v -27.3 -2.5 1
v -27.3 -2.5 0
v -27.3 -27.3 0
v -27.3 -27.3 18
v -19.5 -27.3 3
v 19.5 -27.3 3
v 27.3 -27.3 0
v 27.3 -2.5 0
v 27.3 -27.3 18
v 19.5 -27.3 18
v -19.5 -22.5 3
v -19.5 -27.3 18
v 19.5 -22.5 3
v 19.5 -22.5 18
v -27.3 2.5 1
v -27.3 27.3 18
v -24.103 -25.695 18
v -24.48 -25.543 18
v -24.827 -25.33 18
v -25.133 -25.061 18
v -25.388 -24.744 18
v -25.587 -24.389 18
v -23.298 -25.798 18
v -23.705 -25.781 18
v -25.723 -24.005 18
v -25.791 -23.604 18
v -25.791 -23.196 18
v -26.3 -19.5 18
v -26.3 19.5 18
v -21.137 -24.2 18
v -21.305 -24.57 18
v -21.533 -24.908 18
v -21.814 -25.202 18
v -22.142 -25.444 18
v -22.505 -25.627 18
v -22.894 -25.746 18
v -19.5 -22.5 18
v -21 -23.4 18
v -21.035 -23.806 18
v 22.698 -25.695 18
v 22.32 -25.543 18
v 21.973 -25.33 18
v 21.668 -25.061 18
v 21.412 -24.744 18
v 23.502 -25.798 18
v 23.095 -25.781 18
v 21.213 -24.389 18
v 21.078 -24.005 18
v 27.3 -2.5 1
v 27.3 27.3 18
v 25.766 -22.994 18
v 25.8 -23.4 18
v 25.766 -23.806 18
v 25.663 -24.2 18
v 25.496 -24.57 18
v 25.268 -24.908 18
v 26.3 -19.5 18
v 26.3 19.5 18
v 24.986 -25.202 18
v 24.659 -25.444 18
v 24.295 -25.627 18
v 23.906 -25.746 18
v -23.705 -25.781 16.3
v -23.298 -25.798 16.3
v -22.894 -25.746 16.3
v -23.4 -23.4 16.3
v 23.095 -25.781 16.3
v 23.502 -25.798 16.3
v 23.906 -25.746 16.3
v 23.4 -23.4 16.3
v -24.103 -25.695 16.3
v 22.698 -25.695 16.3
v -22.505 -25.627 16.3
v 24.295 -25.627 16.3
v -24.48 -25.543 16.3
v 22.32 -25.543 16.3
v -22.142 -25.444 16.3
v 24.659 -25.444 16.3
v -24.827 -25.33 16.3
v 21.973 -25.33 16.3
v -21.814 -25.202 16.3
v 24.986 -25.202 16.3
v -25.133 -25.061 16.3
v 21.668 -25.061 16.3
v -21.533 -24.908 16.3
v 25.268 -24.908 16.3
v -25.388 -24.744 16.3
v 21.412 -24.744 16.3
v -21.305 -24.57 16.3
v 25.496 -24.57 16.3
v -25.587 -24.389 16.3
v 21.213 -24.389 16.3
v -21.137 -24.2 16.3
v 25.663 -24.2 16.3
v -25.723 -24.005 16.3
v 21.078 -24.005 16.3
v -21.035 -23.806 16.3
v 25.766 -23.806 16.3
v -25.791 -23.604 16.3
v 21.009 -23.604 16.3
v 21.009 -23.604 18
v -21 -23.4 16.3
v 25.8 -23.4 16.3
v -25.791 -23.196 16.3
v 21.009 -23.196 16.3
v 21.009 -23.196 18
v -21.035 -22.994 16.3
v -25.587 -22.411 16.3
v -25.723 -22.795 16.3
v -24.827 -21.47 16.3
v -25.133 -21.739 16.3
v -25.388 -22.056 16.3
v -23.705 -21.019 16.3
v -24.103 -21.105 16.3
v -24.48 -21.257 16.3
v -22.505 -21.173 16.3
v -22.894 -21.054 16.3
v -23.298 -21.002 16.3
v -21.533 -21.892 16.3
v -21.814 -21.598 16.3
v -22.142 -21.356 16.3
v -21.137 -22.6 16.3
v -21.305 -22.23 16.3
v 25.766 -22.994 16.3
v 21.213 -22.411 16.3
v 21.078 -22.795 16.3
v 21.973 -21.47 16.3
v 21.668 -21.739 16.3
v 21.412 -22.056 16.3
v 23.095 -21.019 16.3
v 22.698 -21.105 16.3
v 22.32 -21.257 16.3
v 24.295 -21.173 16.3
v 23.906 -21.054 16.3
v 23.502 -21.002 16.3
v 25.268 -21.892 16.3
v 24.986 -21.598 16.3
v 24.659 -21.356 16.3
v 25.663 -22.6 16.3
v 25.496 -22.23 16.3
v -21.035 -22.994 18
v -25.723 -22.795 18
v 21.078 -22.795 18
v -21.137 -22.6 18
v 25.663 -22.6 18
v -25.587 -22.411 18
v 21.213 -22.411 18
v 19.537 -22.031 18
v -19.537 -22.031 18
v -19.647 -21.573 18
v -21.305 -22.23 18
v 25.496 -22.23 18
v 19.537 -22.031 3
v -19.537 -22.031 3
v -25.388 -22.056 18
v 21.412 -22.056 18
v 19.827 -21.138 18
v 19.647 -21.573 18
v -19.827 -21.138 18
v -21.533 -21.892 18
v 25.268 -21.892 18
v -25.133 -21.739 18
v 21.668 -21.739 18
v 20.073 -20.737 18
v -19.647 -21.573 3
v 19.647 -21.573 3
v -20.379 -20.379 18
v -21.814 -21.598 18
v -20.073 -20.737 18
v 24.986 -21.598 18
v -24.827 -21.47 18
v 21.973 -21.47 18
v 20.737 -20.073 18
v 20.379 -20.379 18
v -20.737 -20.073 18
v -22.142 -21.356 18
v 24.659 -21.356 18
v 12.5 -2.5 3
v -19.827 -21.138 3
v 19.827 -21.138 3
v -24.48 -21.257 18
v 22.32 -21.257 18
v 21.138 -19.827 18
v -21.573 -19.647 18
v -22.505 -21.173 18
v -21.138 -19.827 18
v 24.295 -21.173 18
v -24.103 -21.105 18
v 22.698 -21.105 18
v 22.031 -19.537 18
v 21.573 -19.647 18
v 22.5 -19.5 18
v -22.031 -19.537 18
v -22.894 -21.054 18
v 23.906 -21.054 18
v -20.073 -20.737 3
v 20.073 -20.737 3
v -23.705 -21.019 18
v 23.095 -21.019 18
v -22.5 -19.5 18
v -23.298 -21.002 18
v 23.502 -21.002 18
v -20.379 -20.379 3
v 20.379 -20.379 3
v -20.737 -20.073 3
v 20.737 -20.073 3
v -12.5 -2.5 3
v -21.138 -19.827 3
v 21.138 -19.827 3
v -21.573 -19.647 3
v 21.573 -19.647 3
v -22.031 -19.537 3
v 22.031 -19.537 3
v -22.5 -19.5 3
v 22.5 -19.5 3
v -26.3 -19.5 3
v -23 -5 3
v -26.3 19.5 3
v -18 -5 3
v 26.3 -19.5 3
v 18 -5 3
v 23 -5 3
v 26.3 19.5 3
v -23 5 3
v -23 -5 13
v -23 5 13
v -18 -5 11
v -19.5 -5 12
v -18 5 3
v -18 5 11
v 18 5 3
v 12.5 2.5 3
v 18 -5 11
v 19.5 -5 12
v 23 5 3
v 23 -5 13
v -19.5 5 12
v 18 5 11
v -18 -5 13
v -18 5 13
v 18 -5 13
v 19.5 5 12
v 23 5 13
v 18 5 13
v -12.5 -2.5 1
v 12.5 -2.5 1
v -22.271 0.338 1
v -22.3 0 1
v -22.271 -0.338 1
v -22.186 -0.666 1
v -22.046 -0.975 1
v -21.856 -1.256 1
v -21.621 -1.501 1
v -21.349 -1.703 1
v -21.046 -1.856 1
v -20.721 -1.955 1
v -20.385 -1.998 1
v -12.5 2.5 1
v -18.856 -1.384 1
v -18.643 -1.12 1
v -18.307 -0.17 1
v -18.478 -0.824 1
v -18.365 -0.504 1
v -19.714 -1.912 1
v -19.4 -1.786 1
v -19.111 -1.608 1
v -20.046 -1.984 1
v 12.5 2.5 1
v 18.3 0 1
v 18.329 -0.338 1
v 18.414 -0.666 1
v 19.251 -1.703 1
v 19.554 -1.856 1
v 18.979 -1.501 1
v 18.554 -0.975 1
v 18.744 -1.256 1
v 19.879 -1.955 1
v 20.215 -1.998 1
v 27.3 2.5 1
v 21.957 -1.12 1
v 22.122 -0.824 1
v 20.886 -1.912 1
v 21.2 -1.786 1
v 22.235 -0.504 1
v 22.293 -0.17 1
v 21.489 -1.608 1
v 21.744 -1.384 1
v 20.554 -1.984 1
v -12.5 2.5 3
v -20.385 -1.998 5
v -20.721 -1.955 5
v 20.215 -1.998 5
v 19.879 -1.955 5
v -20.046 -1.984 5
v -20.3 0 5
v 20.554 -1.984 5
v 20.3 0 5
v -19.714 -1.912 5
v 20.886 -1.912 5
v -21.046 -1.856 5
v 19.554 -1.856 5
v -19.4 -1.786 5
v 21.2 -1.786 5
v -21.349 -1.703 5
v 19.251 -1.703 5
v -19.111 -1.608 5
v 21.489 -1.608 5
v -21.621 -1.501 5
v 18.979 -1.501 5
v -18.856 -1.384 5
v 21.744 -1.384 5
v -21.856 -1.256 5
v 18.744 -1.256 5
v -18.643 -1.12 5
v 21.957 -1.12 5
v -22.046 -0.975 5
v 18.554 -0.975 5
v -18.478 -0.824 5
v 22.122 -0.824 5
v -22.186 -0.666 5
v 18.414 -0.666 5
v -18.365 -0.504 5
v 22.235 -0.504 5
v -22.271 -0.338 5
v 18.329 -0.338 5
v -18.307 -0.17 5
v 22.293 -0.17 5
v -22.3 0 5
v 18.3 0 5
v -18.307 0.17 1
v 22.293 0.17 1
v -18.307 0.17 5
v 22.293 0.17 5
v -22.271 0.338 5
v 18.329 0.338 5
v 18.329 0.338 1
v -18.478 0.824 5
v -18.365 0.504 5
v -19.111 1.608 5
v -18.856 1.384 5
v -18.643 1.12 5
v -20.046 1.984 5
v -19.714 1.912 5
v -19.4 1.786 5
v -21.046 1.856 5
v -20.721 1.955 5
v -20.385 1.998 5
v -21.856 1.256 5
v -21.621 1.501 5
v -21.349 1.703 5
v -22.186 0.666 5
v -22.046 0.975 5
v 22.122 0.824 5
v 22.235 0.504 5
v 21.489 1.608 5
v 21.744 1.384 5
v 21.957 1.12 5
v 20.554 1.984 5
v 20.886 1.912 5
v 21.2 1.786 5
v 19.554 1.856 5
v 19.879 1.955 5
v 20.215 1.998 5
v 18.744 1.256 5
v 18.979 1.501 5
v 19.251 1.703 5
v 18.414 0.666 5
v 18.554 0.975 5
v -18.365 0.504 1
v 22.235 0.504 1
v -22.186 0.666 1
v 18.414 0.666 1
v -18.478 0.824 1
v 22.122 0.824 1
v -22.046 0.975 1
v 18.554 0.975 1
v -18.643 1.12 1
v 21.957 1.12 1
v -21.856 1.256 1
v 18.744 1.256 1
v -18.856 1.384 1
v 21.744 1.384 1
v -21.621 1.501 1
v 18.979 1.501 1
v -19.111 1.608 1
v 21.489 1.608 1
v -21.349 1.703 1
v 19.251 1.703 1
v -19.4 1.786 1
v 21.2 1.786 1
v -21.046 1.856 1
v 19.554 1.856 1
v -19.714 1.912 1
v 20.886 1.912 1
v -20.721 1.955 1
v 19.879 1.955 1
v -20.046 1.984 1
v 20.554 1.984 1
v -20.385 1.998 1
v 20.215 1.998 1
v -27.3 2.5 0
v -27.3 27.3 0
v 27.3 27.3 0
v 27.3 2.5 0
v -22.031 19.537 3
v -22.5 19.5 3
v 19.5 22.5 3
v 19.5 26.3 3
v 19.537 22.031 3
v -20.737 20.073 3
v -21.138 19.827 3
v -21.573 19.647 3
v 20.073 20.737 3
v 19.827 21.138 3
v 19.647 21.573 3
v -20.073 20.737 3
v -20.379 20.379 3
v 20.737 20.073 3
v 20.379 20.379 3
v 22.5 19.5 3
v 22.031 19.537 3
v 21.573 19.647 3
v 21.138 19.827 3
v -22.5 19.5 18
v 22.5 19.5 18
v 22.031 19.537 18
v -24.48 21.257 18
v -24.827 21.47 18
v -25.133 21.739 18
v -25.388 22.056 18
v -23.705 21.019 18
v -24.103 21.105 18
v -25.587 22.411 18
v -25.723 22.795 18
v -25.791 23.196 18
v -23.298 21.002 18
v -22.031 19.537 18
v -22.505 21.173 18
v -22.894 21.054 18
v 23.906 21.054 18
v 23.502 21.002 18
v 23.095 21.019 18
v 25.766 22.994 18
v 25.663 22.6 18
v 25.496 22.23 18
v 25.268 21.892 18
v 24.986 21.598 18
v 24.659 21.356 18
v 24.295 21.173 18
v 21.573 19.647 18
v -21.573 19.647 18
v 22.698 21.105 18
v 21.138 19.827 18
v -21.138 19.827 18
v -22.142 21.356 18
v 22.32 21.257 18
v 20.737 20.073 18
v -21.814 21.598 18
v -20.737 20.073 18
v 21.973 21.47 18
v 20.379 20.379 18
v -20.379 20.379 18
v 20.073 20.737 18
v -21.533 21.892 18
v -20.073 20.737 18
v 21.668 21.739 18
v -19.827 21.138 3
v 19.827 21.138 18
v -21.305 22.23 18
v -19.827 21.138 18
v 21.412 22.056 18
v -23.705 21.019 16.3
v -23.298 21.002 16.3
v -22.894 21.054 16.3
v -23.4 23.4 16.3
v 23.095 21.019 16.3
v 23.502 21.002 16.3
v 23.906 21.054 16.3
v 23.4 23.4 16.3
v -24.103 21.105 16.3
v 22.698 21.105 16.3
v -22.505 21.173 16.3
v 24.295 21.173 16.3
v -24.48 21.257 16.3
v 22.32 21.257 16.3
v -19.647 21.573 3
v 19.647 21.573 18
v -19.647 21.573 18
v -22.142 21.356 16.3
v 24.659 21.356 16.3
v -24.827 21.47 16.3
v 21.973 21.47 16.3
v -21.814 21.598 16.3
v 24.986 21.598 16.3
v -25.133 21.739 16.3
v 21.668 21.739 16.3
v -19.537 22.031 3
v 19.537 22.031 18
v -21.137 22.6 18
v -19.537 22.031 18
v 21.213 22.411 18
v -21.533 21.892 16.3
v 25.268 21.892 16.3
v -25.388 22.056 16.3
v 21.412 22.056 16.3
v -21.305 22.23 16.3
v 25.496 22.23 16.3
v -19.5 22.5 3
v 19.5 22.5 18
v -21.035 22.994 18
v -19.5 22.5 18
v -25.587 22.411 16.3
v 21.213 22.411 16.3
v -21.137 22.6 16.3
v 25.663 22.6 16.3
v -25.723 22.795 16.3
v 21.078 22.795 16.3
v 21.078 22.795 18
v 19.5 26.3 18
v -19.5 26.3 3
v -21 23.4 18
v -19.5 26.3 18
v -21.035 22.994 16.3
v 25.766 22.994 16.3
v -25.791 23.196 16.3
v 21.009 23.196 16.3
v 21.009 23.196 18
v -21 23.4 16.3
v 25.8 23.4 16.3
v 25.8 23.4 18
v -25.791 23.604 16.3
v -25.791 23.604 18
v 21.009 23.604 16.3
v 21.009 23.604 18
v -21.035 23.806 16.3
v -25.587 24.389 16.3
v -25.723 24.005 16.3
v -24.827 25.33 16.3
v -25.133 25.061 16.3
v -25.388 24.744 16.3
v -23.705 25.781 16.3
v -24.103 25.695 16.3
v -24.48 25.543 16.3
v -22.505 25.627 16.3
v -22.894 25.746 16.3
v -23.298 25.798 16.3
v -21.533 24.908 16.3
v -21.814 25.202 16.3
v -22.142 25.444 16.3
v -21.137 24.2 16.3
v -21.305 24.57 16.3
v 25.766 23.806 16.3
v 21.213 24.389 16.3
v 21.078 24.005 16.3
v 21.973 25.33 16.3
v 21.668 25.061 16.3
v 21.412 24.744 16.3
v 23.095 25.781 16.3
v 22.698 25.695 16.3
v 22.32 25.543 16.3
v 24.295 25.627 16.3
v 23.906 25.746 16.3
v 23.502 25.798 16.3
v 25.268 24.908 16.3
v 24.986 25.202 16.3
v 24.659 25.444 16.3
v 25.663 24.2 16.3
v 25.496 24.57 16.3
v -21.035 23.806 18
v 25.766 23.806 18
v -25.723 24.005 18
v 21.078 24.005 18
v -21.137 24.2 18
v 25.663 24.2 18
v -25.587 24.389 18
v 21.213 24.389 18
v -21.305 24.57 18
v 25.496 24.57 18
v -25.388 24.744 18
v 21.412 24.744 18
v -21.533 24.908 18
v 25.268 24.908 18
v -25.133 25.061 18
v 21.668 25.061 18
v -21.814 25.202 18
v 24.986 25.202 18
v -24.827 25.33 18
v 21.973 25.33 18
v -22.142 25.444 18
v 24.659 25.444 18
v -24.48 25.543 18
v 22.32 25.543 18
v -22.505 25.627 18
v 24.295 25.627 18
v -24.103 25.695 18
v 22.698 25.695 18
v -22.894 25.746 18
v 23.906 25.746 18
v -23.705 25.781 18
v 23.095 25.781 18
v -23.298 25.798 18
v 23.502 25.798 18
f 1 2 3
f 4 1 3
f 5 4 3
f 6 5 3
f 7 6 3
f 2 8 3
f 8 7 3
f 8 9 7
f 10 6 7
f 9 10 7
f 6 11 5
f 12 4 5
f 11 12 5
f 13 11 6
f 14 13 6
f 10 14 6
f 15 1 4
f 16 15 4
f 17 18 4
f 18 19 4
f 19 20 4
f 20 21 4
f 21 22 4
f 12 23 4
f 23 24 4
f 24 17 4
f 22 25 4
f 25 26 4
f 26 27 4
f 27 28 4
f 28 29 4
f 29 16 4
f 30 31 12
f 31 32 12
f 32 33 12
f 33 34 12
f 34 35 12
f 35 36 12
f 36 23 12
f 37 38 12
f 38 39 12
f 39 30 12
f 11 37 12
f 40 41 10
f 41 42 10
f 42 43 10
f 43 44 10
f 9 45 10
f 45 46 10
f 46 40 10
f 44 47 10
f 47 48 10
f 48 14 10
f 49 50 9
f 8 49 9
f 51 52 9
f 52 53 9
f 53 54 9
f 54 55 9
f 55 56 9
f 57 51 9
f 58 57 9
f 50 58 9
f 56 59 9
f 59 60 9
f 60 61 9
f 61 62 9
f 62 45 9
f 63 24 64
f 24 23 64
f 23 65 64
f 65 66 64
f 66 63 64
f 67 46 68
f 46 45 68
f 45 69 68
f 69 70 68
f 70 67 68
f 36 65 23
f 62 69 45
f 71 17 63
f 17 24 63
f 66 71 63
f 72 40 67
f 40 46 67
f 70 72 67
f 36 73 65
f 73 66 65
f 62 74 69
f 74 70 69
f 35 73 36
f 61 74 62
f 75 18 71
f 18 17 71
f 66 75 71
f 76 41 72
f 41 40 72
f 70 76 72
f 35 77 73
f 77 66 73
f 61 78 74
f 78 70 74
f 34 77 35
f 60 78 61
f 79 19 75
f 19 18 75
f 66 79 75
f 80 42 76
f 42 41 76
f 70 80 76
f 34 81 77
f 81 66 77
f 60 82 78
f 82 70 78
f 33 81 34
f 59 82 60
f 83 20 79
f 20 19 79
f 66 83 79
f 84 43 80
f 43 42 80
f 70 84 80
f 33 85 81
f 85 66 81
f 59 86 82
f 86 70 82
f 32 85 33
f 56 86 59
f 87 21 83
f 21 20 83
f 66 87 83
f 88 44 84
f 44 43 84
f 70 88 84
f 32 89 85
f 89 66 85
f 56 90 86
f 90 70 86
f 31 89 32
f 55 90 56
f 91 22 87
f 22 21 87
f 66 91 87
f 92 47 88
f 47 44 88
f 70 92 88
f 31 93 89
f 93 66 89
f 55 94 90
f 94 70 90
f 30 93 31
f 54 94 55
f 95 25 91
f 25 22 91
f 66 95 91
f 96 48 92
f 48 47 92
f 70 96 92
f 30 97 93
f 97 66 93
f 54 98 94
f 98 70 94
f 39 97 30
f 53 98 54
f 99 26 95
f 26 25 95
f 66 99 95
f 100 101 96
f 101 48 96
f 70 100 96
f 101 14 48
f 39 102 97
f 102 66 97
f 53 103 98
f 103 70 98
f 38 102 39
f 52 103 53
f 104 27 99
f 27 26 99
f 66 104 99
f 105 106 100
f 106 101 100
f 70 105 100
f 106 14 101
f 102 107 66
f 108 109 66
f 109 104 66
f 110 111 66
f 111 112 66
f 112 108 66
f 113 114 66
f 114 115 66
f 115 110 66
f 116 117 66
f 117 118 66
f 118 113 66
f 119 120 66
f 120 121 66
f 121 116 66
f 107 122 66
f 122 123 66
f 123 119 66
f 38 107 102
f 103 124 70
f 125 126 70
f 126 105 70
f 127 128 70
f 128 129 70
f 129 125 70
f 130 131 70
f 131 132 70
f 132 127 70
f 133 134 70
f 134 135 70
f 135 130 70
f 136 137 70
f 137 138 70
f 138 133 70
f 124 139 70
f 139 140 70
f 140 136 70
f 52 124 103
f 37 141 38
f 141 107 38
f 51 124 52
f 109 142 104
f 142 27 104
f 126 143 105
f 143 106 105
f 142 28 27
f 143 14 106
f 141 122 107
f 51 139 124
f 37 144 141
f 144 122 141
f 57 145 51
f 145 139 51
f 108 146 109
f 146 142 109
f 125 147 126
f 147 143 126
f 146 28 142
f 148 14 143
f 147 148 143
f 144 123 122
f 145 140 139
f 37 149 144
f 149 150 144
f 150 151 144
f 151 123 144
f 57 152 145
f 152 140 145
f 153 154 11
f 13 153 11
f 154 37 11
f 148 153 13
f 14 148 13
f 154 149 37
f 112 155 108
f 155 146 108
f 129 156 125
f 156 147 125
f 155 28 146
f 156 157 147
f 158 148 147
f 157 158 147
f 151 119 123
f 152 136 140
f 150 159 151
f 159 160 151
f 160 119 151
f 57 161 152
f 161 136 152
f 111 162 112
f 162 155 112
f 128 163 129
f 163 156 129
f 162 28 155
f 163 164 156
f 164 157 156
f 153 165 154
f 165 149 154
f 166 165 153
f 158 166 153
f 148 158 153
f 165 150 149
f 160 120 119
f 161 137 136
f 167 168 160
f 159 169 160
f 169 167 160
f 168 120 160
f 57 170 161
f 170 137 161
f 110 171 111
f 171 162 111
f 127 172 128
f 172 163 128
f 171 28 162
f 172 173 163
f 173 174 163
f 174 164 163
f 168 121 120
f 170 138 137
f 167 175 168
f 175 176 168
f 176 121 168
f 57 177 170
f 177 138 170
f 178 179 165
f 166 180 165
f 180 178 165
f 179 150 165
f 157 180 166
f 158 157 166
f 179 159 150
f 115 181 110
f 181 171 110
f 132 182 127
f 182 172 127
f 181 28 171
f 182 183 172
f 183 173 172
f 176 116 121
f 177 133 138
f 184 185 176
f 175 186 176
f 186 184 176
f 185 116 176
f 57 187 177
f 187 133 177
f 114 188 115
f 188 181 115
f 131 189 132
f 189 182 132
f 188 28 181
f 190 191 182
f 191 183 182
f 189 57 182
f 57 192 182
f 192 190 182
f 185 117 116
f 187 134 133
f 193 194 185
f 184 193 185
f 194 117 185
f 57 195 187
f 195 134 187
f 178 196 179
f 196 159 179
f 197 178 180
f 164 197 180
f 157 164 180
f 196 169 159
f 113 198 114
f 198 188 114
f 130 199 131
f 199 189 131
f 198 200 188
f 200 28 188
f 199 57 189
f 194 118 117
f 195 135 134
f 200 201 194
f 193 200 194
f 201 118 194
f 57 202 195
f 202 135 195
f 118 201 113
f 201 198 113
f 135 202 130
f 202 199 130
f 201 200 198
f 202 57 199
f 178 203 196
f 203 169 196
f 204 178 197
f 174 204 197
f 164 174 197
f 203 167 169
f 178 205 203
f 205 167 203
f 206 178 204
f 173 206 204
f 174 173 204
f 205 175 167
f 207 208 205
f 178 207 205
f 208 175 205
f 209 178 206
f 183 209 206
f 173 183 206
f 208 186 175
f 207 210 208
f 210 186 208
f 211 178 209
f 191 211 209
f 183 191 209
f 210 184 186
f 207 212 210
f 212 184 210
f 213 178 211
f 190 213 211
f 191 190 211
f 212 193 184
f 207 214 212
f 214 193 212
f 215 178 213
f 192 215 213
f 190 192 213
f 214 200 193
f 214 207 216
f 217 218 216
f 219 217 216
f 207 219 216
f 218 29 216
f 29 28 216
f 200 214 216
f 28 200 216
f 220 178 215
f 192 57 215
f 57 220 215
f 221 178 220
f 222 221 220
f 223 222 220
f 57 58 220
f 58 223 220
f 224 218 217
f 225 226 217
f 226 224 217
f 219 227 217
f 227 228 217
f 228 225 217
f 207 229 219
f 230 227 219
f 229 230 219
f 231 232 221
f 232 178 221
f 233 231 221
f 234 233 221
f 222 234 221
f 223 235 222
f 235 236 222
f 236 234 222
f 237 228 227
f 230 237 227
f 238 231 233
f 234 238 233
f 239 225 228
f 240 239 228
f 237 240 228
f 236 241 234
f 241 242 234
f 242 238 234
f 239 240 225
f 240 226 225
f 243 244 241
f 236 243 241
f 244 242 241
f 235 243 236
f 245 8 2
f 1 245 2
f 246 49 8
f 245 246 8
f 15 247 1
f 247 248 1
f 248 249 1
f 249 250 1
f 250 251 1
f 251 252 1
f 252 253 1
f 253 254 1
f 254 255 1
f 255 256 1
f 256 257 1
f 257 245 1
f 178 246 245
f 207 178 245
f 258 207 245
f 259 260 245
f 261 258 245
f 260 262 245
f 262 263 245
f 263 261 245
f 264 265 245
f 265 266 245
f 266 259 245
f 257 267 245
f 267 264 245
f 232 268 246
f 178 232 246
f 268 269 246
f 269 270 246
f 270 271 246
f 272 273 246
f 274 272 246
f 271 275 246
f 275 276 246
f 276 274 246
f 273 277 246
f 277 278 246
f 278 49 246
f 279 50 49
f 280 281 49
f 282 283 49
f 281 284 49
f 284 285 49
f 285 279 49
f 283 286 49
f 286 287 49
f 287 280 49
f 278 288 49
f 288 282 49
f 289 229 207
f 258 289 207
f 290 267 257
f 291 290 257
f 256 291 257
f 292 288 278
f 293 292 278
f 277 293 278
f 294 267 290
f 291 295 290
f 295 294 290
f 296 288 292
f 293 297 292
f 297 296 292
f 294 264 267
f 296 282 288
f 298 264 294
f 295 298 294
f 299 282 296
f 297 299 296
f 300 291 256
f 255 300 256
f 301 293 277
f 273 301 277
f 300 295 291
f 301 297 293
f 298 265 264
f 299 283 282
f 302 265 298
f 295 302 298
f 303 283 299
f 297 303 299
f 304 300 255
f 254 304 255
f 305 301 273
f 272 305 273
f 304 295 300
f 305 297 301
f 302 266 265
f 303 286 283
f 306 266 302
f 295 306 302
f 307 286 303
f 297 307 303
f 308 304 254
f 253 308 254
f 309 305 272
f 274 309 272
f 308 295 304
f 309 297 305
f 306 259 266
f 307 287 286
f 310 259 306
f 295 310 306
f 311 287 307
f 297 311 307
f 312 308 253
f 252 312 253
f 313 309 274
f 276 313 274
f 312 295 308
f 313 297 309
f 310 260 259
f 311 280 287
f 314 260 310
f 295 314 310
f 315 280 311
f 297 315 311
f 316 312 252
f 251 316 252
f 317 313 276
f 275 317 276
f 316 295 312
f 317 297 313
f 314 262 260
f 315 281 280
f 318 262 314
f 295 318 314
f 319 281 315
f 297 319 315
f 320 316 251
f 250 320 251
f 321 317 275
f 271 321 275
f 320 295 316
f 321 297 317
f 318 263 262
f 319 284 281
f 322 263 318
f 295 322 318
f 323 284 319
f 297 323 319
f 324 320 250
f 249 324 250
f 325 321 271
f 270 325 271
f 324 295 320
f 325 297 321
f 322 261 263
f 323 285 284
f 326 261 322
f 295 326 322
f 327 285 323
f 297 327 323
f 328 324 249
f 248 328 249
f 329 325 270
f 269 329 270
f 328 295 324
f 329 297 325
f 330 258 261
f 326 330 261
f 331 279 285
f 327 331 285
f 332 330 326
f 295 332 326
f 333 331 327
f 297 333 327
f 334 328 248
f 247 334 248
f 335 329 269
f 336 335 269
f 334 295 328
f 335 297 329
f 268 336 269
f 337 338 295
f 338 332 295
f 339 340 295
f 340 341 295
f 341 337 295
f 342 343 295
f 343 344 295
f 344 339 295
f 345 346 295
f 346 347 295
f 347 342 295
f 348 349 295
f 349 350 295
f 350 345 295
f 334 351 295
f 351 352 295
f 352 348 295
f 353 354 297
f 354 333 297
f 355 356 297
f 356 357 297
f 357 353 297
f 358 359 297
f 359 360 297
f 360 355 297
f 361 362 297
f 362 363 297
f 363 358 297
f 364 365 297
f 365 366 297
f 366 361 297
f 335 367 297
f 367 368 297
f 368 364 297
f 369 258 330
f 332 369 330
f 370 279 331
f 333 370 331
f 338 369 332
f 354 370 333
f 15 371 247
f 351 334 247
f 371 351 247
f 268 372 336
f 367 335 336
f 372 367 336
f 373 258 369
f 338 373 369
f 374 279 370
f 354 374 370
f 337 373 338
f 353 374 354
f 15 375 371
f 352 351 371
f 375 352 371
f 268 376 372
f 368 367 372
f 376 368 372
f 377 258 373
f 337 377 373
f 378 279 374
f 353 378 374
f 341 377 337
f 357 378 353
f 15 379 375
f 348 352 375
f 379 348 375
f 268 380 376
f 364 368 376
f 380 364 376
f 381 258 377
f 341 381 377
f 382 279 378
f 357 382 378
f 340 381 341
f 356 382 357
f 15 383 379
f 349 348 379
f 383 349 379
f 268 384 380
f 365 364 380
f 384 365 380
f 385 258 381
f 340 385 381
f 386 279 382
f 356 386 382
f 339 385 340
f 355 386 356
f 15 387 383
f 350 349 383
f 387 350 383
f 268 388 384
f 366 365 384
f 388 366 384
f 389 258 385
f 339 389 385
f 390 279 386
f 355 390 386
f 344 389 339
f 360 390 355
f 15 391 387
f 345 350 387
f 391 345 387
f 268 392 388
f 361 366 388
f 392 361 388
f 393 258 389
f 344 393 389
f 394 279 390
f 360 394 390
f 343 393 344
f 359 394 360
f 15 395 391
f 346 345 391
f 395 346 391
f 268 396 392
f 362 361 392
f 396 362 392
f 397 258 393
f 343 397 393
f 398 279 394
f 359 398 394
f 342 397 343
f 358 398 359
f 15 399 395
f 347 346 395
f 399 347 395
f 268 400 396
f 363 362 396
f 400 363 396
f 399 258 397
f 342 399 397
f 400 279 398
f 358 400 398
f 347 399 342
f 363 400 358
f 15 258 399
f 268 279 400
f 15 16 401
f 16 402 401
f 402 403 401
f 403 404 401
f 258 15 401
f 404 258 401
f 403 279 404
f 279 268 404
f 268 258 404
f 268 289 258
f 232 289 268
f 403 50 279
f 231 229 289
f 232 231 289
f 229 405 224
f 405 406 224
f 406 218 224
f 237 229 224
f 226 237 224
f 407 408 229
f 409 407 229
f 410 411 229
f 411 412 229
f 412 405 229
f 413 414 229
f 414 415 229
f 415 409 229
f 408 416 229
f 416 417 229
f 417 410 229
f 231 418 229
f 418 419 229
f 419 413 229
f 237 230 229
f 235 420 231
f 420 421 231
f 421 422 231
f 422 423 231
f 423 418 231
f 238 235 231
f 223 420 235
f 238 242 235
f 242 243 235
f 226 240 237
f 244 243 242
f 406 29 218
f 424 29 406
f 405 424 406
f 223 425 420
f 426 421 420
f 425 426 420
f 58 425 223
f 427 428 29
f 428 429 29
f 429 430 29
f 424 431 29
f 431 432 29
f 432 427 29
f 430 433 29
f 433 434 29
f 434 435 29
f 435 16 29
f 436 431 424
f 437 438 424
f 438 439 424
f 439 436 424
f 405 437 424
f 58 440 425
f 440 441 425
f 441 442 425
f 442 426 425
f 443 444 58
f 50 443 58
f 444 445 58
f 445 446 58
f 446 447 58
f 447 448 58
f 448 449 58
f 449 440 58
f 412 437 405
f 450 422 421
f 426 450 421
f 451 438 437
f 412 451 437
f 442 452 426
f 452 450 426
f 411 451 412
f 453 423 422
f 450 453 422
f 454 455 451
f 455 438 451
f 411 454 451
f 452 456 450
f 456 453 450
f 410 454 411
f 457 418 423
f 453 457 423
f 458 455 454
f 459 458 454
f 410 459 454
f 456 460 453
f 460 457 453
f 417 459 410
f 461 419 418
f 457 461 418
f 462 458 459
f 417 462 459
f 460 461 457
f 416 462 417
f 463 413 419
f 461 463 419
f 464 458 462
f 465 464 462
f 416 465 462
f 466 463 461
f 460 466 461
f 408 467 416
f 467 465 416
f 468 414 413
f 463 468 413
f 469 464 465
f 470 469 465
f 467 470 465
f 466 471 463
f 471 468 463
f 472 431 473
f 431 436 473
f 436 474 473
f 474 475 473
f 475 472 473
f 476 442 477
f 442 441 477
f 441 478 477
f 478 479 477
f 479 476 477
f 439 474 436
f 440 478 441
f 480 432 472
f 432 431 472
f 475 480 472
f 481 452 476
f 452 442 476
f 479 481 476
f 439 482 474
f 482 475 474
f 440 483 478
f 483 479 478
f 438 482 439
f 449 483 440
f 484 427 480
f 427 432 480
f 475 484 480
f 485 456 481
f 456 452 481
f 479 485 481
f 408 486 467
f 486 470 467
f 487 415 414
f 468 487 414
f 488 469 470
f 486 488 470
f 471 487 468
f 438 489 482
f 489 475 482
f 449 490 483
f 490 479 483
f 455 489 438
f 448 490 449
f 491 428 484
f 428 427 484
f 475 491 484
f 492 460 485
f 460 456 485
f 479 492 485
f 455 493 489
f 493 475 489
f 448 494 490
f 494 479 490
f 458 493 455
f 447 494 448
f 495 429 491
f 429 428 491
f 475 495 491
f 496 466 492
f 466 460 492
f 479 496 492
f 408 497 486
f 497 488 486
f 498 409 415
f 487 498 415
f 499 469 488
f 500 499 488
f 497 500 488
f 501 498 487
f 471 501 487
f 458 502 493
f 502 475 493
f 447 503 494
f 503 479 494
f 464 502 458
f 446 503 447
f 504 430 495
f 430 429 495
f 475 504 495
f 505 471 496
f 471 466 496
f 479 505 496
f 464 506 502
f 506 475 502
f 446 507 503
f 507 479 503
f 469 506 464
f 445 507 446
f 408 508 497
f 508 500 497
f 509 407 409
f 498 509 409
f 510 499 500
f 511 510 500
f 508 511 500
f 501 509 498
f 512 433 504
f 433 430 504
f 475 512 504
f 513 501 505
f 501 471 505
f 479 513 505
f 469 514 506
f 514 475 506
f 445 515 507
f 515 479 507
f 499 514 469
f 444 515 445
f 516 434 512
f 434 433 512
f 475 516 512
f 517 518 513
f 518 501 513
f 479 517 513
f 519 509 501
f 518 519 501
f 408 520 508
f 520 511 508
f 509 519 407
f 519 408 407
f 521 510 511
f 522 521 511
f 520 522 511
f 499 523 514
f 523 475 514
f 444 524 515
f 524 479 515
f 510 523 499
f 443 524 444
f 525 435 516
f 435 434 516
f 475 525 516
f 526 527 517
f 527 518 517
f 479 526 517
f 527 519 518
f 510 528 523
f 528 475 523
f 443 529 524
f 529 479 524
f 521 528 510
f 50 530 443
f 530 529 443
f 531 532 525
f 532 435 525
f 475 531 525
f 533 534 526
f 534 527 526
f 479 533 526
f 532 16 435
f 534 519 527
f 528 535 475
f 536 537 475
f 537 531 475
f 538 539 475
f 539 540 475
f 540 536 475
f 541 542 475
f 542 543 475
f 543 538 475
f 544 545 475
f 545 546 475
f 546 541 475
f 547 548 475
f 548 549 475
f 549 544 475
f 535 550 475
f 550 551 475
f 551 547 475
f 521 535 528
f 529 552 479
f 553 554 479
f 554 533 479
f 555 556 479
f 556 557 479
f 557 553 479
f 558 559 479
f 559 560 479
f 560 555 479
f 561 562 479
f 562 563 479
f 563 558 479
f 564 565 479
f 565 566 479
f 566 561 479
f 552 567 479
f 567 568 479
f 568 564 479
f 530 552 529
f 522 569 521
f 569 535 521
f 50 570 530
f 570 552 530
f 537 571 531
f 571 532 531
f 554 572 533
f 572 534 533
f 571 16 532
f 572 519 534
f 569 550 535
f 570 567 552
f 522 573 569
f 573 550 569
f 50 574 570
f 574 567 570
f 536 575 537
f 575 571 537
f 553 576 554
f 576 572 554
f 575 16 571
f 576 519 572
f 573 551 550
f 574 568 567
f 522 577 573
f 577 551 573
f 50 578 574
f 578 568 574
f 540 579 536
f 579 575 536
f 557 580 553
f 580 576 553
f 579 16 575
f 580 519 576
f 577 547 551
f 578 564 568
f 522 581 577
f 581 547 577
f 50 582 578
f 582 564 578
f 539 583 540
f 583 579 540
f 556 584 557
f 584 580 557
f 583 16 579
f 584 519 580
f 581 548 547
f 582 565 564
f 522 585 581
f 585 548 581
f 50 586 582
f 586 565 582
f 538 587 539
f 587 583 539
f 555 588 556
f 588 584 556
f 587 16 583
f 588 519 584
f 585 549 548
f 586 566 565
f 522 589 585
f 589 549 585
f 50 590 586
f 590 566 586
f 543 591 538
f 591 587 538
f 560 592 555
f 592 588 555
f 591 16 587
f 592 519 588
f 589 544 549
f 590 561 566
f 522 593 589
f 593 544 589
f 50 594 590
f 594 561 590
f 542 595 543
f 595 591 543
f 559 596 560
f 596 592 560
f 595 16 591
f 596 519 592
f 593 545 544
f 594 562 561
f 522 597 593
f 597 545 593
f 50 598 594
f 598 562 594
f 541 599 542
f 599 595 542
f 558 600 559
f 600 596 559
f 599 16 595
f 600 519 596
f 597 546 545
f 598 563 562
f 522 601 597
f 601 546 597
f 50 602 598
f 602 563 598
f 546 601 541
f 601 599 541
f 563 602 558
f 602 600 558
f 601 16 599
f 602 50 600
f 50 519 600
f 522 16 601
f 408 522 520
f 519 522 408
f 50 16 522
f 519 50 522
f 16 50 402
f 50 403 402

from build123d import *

# Parameters (mm, degrees)
SKICA1_W                 = 54.6
SKICA1_H                 = 54.6
P_IDAT_VYSUNUT_M2_DEPTH  = 3
SKICA4_W                 = 25
SKICA4_H                 = 5
ODEBRAT_VYSUNUT_M1_DEPTH = 2
SKICA5_W                 = 54.6
SKICA5_H                 = 5
ODEBRAT_VYSUNUT_M3_DEPTH = 1
SKICA10_W                = 5
SKICA10_H                = 10
P_IDAT_VYSUNUT_M6_DEPTH  = 10
ODEBRAT_VYSUNUT_M6_DEPTH = 10
P_IDAT_VYSUNUT_M9_DEPTH  = 15
SKICA17_R                = 2
ODEBRAT_VYSUNUT_M8_DEPTH = 4
SKICA19_W                = 7.8
SKICA19_H                = 7.8
P_IDAT_VYSUNUT_M10_DEPTH = 18
SKICA20_R                = 2.4
ODEBRAT_VYSUNUT_M9_DEPTH = 1.7
ZAOBLIT1_R               = 3


with BuildPart() as part:
    # Skica1 → Přidat vysunutím2 (new body)
    with BuildSketch(Plane.XY):
        Rectangle(SKICA1_W, SKICA1_H)
    extrude(amount=P_IDAT_VYSUNUT_M2_DEPTH)

    # Skica4 → Odebrat vysunutím1 (cut)
    with BuildSketch(Plane.XY.offset(3)):
        Rectangle(SKICA4_W, SKICA4_H)
    extrude(amount=-ODEBRAT_VYSUNUT_M1_DEPTH, mode=Mode.SUBTRACT)

    # Skica5 → Odebrat vysunutím3 (cut)
    with BuildSketch(Plane(origin=(0, 0, 0), x_dir=(-1, 0, 0), z_dir=(0, 0, -1))):
        Rectangle(SKICA5_W, SKICA5_H)
    extrude(amount=-ODEBRAT_VYSUNUT_M3_DEPTH, mode=Mode.SUBTRACT)

    # Skica10 → Přidat vysunutím6 (add)
    with BuildSketch(Plane.XY.offset(3)):
        with Locations((-20.5, 0)):
            Rectangle(SKICA10_W, SKICA10_H)
        with Locations((20.5, 0)):
            Rectangle(SKICA10_W, SKICA10_H)
    extrude(amount=P_IDAT_VYSUNUT_M6_DEPTH)

    # Skica12 → Odebrat vysunutím6 (cut)
    with BuildSketch(Plane(origin=(0, 5, 0), x_dir=(1, 0, 0), z_dir=(0, 1, 0))):
        Polygon((-18, -13), (-18, -11), (-19.5, -12), align=None)
        Polygon((18, -13), (18, -11), (19.5, -12), align=None)
    extrude(amount=-ODEBRAT_VYSUNUT_M6_DEPTH, mode=Mode.SUBTRACT)

    # Skica14 → Přidat vysunutím9 (add)
    with BuildSketch(Plane.XY.offset(3)):
        Polygon((27.3, 27.3), (-27.3, 27.3), (-27.3, -27.3), (-26.3, -27.3), (-26.3, 26.3), (26.3, 26.3), (26.3, -27.3), (27.3, -27.3), align=None)
    extrude(amount=P_IDAT_VYSUNUT_M9_DEPTH)

    # Skica17 → Odebrat vysunutím8 (cut)
    with BuildSketch(Plane(origin=(0, 0, 1), x_dir=(-1, 0, 0), z_dir=(0, 0, -1))):
        with Locations((-20.3, 0)):
            Circle(SKICA17_R)
        with Locations((20.3, 0)):
            Circle(SKICA17_R)
    extrude(amount=-ODEBRAT_VYSUNUT_M8_DEPTH, mode=Mode.SUBTRACT)

    # Skica19 → Přidat vysunutím10 (add)
    with BuildSketch(Plane(origin=(0, 0, 0), x_dir=(-1, 0, 0), z_dir=(0, 0, -1))):
        with Locations((-23.4, 23.4)):
            Rectangle(SKICA19_W, SKICA19_H)
        with Locations((23.4, 23.4)):
            Rectangle(SKICA19_W, SKICA19_H)
        with Locations((-23.4, -23.4)):
            Rectangle(SKICA19_W, SKICA19_H)
        with Locations((23.4, -23.4)):
            Rectangle(SKICA19_W, SKICA19_H)
    extrude(amount=-P_IDAT_VYSUNUT_M10_DEPTH)

    # Skica20 → Odebrat vysunutím9 (cut)
    with BuildSketch(Plane.XY.offset(18)):
        with Locations((-23.4, -23.4)):
            Circle(SKICA20_R)
        with Locations((-23.4, 23.4)):
            Circle(SKICA20_R)
        with Locations((23.400280565, 23.4)):
            Circle(SKICA20_R)
        with Locations((23.400280565, -23.4)):
            Circle(SKICA20_R)
    extrude(amount=-ODEBRAT_VYSUNUT_M9_DEPTH, mode=Mode.SUBTRACT)

    # Zaoblit1
    zaoblit1_edges = [part.edges().sort_by_distance(p)[0] for p in [
        (19.5, 19.5, 10.5),
        (-19.5, 19.5, 10.5),
        (19.5, -19.5, 10.5),
        (-19.5, -19.5, 10.5),
    ]]
    fillet(zaoblit1_edges, radius=ZAOBLIT1_R)


solid = part.part
